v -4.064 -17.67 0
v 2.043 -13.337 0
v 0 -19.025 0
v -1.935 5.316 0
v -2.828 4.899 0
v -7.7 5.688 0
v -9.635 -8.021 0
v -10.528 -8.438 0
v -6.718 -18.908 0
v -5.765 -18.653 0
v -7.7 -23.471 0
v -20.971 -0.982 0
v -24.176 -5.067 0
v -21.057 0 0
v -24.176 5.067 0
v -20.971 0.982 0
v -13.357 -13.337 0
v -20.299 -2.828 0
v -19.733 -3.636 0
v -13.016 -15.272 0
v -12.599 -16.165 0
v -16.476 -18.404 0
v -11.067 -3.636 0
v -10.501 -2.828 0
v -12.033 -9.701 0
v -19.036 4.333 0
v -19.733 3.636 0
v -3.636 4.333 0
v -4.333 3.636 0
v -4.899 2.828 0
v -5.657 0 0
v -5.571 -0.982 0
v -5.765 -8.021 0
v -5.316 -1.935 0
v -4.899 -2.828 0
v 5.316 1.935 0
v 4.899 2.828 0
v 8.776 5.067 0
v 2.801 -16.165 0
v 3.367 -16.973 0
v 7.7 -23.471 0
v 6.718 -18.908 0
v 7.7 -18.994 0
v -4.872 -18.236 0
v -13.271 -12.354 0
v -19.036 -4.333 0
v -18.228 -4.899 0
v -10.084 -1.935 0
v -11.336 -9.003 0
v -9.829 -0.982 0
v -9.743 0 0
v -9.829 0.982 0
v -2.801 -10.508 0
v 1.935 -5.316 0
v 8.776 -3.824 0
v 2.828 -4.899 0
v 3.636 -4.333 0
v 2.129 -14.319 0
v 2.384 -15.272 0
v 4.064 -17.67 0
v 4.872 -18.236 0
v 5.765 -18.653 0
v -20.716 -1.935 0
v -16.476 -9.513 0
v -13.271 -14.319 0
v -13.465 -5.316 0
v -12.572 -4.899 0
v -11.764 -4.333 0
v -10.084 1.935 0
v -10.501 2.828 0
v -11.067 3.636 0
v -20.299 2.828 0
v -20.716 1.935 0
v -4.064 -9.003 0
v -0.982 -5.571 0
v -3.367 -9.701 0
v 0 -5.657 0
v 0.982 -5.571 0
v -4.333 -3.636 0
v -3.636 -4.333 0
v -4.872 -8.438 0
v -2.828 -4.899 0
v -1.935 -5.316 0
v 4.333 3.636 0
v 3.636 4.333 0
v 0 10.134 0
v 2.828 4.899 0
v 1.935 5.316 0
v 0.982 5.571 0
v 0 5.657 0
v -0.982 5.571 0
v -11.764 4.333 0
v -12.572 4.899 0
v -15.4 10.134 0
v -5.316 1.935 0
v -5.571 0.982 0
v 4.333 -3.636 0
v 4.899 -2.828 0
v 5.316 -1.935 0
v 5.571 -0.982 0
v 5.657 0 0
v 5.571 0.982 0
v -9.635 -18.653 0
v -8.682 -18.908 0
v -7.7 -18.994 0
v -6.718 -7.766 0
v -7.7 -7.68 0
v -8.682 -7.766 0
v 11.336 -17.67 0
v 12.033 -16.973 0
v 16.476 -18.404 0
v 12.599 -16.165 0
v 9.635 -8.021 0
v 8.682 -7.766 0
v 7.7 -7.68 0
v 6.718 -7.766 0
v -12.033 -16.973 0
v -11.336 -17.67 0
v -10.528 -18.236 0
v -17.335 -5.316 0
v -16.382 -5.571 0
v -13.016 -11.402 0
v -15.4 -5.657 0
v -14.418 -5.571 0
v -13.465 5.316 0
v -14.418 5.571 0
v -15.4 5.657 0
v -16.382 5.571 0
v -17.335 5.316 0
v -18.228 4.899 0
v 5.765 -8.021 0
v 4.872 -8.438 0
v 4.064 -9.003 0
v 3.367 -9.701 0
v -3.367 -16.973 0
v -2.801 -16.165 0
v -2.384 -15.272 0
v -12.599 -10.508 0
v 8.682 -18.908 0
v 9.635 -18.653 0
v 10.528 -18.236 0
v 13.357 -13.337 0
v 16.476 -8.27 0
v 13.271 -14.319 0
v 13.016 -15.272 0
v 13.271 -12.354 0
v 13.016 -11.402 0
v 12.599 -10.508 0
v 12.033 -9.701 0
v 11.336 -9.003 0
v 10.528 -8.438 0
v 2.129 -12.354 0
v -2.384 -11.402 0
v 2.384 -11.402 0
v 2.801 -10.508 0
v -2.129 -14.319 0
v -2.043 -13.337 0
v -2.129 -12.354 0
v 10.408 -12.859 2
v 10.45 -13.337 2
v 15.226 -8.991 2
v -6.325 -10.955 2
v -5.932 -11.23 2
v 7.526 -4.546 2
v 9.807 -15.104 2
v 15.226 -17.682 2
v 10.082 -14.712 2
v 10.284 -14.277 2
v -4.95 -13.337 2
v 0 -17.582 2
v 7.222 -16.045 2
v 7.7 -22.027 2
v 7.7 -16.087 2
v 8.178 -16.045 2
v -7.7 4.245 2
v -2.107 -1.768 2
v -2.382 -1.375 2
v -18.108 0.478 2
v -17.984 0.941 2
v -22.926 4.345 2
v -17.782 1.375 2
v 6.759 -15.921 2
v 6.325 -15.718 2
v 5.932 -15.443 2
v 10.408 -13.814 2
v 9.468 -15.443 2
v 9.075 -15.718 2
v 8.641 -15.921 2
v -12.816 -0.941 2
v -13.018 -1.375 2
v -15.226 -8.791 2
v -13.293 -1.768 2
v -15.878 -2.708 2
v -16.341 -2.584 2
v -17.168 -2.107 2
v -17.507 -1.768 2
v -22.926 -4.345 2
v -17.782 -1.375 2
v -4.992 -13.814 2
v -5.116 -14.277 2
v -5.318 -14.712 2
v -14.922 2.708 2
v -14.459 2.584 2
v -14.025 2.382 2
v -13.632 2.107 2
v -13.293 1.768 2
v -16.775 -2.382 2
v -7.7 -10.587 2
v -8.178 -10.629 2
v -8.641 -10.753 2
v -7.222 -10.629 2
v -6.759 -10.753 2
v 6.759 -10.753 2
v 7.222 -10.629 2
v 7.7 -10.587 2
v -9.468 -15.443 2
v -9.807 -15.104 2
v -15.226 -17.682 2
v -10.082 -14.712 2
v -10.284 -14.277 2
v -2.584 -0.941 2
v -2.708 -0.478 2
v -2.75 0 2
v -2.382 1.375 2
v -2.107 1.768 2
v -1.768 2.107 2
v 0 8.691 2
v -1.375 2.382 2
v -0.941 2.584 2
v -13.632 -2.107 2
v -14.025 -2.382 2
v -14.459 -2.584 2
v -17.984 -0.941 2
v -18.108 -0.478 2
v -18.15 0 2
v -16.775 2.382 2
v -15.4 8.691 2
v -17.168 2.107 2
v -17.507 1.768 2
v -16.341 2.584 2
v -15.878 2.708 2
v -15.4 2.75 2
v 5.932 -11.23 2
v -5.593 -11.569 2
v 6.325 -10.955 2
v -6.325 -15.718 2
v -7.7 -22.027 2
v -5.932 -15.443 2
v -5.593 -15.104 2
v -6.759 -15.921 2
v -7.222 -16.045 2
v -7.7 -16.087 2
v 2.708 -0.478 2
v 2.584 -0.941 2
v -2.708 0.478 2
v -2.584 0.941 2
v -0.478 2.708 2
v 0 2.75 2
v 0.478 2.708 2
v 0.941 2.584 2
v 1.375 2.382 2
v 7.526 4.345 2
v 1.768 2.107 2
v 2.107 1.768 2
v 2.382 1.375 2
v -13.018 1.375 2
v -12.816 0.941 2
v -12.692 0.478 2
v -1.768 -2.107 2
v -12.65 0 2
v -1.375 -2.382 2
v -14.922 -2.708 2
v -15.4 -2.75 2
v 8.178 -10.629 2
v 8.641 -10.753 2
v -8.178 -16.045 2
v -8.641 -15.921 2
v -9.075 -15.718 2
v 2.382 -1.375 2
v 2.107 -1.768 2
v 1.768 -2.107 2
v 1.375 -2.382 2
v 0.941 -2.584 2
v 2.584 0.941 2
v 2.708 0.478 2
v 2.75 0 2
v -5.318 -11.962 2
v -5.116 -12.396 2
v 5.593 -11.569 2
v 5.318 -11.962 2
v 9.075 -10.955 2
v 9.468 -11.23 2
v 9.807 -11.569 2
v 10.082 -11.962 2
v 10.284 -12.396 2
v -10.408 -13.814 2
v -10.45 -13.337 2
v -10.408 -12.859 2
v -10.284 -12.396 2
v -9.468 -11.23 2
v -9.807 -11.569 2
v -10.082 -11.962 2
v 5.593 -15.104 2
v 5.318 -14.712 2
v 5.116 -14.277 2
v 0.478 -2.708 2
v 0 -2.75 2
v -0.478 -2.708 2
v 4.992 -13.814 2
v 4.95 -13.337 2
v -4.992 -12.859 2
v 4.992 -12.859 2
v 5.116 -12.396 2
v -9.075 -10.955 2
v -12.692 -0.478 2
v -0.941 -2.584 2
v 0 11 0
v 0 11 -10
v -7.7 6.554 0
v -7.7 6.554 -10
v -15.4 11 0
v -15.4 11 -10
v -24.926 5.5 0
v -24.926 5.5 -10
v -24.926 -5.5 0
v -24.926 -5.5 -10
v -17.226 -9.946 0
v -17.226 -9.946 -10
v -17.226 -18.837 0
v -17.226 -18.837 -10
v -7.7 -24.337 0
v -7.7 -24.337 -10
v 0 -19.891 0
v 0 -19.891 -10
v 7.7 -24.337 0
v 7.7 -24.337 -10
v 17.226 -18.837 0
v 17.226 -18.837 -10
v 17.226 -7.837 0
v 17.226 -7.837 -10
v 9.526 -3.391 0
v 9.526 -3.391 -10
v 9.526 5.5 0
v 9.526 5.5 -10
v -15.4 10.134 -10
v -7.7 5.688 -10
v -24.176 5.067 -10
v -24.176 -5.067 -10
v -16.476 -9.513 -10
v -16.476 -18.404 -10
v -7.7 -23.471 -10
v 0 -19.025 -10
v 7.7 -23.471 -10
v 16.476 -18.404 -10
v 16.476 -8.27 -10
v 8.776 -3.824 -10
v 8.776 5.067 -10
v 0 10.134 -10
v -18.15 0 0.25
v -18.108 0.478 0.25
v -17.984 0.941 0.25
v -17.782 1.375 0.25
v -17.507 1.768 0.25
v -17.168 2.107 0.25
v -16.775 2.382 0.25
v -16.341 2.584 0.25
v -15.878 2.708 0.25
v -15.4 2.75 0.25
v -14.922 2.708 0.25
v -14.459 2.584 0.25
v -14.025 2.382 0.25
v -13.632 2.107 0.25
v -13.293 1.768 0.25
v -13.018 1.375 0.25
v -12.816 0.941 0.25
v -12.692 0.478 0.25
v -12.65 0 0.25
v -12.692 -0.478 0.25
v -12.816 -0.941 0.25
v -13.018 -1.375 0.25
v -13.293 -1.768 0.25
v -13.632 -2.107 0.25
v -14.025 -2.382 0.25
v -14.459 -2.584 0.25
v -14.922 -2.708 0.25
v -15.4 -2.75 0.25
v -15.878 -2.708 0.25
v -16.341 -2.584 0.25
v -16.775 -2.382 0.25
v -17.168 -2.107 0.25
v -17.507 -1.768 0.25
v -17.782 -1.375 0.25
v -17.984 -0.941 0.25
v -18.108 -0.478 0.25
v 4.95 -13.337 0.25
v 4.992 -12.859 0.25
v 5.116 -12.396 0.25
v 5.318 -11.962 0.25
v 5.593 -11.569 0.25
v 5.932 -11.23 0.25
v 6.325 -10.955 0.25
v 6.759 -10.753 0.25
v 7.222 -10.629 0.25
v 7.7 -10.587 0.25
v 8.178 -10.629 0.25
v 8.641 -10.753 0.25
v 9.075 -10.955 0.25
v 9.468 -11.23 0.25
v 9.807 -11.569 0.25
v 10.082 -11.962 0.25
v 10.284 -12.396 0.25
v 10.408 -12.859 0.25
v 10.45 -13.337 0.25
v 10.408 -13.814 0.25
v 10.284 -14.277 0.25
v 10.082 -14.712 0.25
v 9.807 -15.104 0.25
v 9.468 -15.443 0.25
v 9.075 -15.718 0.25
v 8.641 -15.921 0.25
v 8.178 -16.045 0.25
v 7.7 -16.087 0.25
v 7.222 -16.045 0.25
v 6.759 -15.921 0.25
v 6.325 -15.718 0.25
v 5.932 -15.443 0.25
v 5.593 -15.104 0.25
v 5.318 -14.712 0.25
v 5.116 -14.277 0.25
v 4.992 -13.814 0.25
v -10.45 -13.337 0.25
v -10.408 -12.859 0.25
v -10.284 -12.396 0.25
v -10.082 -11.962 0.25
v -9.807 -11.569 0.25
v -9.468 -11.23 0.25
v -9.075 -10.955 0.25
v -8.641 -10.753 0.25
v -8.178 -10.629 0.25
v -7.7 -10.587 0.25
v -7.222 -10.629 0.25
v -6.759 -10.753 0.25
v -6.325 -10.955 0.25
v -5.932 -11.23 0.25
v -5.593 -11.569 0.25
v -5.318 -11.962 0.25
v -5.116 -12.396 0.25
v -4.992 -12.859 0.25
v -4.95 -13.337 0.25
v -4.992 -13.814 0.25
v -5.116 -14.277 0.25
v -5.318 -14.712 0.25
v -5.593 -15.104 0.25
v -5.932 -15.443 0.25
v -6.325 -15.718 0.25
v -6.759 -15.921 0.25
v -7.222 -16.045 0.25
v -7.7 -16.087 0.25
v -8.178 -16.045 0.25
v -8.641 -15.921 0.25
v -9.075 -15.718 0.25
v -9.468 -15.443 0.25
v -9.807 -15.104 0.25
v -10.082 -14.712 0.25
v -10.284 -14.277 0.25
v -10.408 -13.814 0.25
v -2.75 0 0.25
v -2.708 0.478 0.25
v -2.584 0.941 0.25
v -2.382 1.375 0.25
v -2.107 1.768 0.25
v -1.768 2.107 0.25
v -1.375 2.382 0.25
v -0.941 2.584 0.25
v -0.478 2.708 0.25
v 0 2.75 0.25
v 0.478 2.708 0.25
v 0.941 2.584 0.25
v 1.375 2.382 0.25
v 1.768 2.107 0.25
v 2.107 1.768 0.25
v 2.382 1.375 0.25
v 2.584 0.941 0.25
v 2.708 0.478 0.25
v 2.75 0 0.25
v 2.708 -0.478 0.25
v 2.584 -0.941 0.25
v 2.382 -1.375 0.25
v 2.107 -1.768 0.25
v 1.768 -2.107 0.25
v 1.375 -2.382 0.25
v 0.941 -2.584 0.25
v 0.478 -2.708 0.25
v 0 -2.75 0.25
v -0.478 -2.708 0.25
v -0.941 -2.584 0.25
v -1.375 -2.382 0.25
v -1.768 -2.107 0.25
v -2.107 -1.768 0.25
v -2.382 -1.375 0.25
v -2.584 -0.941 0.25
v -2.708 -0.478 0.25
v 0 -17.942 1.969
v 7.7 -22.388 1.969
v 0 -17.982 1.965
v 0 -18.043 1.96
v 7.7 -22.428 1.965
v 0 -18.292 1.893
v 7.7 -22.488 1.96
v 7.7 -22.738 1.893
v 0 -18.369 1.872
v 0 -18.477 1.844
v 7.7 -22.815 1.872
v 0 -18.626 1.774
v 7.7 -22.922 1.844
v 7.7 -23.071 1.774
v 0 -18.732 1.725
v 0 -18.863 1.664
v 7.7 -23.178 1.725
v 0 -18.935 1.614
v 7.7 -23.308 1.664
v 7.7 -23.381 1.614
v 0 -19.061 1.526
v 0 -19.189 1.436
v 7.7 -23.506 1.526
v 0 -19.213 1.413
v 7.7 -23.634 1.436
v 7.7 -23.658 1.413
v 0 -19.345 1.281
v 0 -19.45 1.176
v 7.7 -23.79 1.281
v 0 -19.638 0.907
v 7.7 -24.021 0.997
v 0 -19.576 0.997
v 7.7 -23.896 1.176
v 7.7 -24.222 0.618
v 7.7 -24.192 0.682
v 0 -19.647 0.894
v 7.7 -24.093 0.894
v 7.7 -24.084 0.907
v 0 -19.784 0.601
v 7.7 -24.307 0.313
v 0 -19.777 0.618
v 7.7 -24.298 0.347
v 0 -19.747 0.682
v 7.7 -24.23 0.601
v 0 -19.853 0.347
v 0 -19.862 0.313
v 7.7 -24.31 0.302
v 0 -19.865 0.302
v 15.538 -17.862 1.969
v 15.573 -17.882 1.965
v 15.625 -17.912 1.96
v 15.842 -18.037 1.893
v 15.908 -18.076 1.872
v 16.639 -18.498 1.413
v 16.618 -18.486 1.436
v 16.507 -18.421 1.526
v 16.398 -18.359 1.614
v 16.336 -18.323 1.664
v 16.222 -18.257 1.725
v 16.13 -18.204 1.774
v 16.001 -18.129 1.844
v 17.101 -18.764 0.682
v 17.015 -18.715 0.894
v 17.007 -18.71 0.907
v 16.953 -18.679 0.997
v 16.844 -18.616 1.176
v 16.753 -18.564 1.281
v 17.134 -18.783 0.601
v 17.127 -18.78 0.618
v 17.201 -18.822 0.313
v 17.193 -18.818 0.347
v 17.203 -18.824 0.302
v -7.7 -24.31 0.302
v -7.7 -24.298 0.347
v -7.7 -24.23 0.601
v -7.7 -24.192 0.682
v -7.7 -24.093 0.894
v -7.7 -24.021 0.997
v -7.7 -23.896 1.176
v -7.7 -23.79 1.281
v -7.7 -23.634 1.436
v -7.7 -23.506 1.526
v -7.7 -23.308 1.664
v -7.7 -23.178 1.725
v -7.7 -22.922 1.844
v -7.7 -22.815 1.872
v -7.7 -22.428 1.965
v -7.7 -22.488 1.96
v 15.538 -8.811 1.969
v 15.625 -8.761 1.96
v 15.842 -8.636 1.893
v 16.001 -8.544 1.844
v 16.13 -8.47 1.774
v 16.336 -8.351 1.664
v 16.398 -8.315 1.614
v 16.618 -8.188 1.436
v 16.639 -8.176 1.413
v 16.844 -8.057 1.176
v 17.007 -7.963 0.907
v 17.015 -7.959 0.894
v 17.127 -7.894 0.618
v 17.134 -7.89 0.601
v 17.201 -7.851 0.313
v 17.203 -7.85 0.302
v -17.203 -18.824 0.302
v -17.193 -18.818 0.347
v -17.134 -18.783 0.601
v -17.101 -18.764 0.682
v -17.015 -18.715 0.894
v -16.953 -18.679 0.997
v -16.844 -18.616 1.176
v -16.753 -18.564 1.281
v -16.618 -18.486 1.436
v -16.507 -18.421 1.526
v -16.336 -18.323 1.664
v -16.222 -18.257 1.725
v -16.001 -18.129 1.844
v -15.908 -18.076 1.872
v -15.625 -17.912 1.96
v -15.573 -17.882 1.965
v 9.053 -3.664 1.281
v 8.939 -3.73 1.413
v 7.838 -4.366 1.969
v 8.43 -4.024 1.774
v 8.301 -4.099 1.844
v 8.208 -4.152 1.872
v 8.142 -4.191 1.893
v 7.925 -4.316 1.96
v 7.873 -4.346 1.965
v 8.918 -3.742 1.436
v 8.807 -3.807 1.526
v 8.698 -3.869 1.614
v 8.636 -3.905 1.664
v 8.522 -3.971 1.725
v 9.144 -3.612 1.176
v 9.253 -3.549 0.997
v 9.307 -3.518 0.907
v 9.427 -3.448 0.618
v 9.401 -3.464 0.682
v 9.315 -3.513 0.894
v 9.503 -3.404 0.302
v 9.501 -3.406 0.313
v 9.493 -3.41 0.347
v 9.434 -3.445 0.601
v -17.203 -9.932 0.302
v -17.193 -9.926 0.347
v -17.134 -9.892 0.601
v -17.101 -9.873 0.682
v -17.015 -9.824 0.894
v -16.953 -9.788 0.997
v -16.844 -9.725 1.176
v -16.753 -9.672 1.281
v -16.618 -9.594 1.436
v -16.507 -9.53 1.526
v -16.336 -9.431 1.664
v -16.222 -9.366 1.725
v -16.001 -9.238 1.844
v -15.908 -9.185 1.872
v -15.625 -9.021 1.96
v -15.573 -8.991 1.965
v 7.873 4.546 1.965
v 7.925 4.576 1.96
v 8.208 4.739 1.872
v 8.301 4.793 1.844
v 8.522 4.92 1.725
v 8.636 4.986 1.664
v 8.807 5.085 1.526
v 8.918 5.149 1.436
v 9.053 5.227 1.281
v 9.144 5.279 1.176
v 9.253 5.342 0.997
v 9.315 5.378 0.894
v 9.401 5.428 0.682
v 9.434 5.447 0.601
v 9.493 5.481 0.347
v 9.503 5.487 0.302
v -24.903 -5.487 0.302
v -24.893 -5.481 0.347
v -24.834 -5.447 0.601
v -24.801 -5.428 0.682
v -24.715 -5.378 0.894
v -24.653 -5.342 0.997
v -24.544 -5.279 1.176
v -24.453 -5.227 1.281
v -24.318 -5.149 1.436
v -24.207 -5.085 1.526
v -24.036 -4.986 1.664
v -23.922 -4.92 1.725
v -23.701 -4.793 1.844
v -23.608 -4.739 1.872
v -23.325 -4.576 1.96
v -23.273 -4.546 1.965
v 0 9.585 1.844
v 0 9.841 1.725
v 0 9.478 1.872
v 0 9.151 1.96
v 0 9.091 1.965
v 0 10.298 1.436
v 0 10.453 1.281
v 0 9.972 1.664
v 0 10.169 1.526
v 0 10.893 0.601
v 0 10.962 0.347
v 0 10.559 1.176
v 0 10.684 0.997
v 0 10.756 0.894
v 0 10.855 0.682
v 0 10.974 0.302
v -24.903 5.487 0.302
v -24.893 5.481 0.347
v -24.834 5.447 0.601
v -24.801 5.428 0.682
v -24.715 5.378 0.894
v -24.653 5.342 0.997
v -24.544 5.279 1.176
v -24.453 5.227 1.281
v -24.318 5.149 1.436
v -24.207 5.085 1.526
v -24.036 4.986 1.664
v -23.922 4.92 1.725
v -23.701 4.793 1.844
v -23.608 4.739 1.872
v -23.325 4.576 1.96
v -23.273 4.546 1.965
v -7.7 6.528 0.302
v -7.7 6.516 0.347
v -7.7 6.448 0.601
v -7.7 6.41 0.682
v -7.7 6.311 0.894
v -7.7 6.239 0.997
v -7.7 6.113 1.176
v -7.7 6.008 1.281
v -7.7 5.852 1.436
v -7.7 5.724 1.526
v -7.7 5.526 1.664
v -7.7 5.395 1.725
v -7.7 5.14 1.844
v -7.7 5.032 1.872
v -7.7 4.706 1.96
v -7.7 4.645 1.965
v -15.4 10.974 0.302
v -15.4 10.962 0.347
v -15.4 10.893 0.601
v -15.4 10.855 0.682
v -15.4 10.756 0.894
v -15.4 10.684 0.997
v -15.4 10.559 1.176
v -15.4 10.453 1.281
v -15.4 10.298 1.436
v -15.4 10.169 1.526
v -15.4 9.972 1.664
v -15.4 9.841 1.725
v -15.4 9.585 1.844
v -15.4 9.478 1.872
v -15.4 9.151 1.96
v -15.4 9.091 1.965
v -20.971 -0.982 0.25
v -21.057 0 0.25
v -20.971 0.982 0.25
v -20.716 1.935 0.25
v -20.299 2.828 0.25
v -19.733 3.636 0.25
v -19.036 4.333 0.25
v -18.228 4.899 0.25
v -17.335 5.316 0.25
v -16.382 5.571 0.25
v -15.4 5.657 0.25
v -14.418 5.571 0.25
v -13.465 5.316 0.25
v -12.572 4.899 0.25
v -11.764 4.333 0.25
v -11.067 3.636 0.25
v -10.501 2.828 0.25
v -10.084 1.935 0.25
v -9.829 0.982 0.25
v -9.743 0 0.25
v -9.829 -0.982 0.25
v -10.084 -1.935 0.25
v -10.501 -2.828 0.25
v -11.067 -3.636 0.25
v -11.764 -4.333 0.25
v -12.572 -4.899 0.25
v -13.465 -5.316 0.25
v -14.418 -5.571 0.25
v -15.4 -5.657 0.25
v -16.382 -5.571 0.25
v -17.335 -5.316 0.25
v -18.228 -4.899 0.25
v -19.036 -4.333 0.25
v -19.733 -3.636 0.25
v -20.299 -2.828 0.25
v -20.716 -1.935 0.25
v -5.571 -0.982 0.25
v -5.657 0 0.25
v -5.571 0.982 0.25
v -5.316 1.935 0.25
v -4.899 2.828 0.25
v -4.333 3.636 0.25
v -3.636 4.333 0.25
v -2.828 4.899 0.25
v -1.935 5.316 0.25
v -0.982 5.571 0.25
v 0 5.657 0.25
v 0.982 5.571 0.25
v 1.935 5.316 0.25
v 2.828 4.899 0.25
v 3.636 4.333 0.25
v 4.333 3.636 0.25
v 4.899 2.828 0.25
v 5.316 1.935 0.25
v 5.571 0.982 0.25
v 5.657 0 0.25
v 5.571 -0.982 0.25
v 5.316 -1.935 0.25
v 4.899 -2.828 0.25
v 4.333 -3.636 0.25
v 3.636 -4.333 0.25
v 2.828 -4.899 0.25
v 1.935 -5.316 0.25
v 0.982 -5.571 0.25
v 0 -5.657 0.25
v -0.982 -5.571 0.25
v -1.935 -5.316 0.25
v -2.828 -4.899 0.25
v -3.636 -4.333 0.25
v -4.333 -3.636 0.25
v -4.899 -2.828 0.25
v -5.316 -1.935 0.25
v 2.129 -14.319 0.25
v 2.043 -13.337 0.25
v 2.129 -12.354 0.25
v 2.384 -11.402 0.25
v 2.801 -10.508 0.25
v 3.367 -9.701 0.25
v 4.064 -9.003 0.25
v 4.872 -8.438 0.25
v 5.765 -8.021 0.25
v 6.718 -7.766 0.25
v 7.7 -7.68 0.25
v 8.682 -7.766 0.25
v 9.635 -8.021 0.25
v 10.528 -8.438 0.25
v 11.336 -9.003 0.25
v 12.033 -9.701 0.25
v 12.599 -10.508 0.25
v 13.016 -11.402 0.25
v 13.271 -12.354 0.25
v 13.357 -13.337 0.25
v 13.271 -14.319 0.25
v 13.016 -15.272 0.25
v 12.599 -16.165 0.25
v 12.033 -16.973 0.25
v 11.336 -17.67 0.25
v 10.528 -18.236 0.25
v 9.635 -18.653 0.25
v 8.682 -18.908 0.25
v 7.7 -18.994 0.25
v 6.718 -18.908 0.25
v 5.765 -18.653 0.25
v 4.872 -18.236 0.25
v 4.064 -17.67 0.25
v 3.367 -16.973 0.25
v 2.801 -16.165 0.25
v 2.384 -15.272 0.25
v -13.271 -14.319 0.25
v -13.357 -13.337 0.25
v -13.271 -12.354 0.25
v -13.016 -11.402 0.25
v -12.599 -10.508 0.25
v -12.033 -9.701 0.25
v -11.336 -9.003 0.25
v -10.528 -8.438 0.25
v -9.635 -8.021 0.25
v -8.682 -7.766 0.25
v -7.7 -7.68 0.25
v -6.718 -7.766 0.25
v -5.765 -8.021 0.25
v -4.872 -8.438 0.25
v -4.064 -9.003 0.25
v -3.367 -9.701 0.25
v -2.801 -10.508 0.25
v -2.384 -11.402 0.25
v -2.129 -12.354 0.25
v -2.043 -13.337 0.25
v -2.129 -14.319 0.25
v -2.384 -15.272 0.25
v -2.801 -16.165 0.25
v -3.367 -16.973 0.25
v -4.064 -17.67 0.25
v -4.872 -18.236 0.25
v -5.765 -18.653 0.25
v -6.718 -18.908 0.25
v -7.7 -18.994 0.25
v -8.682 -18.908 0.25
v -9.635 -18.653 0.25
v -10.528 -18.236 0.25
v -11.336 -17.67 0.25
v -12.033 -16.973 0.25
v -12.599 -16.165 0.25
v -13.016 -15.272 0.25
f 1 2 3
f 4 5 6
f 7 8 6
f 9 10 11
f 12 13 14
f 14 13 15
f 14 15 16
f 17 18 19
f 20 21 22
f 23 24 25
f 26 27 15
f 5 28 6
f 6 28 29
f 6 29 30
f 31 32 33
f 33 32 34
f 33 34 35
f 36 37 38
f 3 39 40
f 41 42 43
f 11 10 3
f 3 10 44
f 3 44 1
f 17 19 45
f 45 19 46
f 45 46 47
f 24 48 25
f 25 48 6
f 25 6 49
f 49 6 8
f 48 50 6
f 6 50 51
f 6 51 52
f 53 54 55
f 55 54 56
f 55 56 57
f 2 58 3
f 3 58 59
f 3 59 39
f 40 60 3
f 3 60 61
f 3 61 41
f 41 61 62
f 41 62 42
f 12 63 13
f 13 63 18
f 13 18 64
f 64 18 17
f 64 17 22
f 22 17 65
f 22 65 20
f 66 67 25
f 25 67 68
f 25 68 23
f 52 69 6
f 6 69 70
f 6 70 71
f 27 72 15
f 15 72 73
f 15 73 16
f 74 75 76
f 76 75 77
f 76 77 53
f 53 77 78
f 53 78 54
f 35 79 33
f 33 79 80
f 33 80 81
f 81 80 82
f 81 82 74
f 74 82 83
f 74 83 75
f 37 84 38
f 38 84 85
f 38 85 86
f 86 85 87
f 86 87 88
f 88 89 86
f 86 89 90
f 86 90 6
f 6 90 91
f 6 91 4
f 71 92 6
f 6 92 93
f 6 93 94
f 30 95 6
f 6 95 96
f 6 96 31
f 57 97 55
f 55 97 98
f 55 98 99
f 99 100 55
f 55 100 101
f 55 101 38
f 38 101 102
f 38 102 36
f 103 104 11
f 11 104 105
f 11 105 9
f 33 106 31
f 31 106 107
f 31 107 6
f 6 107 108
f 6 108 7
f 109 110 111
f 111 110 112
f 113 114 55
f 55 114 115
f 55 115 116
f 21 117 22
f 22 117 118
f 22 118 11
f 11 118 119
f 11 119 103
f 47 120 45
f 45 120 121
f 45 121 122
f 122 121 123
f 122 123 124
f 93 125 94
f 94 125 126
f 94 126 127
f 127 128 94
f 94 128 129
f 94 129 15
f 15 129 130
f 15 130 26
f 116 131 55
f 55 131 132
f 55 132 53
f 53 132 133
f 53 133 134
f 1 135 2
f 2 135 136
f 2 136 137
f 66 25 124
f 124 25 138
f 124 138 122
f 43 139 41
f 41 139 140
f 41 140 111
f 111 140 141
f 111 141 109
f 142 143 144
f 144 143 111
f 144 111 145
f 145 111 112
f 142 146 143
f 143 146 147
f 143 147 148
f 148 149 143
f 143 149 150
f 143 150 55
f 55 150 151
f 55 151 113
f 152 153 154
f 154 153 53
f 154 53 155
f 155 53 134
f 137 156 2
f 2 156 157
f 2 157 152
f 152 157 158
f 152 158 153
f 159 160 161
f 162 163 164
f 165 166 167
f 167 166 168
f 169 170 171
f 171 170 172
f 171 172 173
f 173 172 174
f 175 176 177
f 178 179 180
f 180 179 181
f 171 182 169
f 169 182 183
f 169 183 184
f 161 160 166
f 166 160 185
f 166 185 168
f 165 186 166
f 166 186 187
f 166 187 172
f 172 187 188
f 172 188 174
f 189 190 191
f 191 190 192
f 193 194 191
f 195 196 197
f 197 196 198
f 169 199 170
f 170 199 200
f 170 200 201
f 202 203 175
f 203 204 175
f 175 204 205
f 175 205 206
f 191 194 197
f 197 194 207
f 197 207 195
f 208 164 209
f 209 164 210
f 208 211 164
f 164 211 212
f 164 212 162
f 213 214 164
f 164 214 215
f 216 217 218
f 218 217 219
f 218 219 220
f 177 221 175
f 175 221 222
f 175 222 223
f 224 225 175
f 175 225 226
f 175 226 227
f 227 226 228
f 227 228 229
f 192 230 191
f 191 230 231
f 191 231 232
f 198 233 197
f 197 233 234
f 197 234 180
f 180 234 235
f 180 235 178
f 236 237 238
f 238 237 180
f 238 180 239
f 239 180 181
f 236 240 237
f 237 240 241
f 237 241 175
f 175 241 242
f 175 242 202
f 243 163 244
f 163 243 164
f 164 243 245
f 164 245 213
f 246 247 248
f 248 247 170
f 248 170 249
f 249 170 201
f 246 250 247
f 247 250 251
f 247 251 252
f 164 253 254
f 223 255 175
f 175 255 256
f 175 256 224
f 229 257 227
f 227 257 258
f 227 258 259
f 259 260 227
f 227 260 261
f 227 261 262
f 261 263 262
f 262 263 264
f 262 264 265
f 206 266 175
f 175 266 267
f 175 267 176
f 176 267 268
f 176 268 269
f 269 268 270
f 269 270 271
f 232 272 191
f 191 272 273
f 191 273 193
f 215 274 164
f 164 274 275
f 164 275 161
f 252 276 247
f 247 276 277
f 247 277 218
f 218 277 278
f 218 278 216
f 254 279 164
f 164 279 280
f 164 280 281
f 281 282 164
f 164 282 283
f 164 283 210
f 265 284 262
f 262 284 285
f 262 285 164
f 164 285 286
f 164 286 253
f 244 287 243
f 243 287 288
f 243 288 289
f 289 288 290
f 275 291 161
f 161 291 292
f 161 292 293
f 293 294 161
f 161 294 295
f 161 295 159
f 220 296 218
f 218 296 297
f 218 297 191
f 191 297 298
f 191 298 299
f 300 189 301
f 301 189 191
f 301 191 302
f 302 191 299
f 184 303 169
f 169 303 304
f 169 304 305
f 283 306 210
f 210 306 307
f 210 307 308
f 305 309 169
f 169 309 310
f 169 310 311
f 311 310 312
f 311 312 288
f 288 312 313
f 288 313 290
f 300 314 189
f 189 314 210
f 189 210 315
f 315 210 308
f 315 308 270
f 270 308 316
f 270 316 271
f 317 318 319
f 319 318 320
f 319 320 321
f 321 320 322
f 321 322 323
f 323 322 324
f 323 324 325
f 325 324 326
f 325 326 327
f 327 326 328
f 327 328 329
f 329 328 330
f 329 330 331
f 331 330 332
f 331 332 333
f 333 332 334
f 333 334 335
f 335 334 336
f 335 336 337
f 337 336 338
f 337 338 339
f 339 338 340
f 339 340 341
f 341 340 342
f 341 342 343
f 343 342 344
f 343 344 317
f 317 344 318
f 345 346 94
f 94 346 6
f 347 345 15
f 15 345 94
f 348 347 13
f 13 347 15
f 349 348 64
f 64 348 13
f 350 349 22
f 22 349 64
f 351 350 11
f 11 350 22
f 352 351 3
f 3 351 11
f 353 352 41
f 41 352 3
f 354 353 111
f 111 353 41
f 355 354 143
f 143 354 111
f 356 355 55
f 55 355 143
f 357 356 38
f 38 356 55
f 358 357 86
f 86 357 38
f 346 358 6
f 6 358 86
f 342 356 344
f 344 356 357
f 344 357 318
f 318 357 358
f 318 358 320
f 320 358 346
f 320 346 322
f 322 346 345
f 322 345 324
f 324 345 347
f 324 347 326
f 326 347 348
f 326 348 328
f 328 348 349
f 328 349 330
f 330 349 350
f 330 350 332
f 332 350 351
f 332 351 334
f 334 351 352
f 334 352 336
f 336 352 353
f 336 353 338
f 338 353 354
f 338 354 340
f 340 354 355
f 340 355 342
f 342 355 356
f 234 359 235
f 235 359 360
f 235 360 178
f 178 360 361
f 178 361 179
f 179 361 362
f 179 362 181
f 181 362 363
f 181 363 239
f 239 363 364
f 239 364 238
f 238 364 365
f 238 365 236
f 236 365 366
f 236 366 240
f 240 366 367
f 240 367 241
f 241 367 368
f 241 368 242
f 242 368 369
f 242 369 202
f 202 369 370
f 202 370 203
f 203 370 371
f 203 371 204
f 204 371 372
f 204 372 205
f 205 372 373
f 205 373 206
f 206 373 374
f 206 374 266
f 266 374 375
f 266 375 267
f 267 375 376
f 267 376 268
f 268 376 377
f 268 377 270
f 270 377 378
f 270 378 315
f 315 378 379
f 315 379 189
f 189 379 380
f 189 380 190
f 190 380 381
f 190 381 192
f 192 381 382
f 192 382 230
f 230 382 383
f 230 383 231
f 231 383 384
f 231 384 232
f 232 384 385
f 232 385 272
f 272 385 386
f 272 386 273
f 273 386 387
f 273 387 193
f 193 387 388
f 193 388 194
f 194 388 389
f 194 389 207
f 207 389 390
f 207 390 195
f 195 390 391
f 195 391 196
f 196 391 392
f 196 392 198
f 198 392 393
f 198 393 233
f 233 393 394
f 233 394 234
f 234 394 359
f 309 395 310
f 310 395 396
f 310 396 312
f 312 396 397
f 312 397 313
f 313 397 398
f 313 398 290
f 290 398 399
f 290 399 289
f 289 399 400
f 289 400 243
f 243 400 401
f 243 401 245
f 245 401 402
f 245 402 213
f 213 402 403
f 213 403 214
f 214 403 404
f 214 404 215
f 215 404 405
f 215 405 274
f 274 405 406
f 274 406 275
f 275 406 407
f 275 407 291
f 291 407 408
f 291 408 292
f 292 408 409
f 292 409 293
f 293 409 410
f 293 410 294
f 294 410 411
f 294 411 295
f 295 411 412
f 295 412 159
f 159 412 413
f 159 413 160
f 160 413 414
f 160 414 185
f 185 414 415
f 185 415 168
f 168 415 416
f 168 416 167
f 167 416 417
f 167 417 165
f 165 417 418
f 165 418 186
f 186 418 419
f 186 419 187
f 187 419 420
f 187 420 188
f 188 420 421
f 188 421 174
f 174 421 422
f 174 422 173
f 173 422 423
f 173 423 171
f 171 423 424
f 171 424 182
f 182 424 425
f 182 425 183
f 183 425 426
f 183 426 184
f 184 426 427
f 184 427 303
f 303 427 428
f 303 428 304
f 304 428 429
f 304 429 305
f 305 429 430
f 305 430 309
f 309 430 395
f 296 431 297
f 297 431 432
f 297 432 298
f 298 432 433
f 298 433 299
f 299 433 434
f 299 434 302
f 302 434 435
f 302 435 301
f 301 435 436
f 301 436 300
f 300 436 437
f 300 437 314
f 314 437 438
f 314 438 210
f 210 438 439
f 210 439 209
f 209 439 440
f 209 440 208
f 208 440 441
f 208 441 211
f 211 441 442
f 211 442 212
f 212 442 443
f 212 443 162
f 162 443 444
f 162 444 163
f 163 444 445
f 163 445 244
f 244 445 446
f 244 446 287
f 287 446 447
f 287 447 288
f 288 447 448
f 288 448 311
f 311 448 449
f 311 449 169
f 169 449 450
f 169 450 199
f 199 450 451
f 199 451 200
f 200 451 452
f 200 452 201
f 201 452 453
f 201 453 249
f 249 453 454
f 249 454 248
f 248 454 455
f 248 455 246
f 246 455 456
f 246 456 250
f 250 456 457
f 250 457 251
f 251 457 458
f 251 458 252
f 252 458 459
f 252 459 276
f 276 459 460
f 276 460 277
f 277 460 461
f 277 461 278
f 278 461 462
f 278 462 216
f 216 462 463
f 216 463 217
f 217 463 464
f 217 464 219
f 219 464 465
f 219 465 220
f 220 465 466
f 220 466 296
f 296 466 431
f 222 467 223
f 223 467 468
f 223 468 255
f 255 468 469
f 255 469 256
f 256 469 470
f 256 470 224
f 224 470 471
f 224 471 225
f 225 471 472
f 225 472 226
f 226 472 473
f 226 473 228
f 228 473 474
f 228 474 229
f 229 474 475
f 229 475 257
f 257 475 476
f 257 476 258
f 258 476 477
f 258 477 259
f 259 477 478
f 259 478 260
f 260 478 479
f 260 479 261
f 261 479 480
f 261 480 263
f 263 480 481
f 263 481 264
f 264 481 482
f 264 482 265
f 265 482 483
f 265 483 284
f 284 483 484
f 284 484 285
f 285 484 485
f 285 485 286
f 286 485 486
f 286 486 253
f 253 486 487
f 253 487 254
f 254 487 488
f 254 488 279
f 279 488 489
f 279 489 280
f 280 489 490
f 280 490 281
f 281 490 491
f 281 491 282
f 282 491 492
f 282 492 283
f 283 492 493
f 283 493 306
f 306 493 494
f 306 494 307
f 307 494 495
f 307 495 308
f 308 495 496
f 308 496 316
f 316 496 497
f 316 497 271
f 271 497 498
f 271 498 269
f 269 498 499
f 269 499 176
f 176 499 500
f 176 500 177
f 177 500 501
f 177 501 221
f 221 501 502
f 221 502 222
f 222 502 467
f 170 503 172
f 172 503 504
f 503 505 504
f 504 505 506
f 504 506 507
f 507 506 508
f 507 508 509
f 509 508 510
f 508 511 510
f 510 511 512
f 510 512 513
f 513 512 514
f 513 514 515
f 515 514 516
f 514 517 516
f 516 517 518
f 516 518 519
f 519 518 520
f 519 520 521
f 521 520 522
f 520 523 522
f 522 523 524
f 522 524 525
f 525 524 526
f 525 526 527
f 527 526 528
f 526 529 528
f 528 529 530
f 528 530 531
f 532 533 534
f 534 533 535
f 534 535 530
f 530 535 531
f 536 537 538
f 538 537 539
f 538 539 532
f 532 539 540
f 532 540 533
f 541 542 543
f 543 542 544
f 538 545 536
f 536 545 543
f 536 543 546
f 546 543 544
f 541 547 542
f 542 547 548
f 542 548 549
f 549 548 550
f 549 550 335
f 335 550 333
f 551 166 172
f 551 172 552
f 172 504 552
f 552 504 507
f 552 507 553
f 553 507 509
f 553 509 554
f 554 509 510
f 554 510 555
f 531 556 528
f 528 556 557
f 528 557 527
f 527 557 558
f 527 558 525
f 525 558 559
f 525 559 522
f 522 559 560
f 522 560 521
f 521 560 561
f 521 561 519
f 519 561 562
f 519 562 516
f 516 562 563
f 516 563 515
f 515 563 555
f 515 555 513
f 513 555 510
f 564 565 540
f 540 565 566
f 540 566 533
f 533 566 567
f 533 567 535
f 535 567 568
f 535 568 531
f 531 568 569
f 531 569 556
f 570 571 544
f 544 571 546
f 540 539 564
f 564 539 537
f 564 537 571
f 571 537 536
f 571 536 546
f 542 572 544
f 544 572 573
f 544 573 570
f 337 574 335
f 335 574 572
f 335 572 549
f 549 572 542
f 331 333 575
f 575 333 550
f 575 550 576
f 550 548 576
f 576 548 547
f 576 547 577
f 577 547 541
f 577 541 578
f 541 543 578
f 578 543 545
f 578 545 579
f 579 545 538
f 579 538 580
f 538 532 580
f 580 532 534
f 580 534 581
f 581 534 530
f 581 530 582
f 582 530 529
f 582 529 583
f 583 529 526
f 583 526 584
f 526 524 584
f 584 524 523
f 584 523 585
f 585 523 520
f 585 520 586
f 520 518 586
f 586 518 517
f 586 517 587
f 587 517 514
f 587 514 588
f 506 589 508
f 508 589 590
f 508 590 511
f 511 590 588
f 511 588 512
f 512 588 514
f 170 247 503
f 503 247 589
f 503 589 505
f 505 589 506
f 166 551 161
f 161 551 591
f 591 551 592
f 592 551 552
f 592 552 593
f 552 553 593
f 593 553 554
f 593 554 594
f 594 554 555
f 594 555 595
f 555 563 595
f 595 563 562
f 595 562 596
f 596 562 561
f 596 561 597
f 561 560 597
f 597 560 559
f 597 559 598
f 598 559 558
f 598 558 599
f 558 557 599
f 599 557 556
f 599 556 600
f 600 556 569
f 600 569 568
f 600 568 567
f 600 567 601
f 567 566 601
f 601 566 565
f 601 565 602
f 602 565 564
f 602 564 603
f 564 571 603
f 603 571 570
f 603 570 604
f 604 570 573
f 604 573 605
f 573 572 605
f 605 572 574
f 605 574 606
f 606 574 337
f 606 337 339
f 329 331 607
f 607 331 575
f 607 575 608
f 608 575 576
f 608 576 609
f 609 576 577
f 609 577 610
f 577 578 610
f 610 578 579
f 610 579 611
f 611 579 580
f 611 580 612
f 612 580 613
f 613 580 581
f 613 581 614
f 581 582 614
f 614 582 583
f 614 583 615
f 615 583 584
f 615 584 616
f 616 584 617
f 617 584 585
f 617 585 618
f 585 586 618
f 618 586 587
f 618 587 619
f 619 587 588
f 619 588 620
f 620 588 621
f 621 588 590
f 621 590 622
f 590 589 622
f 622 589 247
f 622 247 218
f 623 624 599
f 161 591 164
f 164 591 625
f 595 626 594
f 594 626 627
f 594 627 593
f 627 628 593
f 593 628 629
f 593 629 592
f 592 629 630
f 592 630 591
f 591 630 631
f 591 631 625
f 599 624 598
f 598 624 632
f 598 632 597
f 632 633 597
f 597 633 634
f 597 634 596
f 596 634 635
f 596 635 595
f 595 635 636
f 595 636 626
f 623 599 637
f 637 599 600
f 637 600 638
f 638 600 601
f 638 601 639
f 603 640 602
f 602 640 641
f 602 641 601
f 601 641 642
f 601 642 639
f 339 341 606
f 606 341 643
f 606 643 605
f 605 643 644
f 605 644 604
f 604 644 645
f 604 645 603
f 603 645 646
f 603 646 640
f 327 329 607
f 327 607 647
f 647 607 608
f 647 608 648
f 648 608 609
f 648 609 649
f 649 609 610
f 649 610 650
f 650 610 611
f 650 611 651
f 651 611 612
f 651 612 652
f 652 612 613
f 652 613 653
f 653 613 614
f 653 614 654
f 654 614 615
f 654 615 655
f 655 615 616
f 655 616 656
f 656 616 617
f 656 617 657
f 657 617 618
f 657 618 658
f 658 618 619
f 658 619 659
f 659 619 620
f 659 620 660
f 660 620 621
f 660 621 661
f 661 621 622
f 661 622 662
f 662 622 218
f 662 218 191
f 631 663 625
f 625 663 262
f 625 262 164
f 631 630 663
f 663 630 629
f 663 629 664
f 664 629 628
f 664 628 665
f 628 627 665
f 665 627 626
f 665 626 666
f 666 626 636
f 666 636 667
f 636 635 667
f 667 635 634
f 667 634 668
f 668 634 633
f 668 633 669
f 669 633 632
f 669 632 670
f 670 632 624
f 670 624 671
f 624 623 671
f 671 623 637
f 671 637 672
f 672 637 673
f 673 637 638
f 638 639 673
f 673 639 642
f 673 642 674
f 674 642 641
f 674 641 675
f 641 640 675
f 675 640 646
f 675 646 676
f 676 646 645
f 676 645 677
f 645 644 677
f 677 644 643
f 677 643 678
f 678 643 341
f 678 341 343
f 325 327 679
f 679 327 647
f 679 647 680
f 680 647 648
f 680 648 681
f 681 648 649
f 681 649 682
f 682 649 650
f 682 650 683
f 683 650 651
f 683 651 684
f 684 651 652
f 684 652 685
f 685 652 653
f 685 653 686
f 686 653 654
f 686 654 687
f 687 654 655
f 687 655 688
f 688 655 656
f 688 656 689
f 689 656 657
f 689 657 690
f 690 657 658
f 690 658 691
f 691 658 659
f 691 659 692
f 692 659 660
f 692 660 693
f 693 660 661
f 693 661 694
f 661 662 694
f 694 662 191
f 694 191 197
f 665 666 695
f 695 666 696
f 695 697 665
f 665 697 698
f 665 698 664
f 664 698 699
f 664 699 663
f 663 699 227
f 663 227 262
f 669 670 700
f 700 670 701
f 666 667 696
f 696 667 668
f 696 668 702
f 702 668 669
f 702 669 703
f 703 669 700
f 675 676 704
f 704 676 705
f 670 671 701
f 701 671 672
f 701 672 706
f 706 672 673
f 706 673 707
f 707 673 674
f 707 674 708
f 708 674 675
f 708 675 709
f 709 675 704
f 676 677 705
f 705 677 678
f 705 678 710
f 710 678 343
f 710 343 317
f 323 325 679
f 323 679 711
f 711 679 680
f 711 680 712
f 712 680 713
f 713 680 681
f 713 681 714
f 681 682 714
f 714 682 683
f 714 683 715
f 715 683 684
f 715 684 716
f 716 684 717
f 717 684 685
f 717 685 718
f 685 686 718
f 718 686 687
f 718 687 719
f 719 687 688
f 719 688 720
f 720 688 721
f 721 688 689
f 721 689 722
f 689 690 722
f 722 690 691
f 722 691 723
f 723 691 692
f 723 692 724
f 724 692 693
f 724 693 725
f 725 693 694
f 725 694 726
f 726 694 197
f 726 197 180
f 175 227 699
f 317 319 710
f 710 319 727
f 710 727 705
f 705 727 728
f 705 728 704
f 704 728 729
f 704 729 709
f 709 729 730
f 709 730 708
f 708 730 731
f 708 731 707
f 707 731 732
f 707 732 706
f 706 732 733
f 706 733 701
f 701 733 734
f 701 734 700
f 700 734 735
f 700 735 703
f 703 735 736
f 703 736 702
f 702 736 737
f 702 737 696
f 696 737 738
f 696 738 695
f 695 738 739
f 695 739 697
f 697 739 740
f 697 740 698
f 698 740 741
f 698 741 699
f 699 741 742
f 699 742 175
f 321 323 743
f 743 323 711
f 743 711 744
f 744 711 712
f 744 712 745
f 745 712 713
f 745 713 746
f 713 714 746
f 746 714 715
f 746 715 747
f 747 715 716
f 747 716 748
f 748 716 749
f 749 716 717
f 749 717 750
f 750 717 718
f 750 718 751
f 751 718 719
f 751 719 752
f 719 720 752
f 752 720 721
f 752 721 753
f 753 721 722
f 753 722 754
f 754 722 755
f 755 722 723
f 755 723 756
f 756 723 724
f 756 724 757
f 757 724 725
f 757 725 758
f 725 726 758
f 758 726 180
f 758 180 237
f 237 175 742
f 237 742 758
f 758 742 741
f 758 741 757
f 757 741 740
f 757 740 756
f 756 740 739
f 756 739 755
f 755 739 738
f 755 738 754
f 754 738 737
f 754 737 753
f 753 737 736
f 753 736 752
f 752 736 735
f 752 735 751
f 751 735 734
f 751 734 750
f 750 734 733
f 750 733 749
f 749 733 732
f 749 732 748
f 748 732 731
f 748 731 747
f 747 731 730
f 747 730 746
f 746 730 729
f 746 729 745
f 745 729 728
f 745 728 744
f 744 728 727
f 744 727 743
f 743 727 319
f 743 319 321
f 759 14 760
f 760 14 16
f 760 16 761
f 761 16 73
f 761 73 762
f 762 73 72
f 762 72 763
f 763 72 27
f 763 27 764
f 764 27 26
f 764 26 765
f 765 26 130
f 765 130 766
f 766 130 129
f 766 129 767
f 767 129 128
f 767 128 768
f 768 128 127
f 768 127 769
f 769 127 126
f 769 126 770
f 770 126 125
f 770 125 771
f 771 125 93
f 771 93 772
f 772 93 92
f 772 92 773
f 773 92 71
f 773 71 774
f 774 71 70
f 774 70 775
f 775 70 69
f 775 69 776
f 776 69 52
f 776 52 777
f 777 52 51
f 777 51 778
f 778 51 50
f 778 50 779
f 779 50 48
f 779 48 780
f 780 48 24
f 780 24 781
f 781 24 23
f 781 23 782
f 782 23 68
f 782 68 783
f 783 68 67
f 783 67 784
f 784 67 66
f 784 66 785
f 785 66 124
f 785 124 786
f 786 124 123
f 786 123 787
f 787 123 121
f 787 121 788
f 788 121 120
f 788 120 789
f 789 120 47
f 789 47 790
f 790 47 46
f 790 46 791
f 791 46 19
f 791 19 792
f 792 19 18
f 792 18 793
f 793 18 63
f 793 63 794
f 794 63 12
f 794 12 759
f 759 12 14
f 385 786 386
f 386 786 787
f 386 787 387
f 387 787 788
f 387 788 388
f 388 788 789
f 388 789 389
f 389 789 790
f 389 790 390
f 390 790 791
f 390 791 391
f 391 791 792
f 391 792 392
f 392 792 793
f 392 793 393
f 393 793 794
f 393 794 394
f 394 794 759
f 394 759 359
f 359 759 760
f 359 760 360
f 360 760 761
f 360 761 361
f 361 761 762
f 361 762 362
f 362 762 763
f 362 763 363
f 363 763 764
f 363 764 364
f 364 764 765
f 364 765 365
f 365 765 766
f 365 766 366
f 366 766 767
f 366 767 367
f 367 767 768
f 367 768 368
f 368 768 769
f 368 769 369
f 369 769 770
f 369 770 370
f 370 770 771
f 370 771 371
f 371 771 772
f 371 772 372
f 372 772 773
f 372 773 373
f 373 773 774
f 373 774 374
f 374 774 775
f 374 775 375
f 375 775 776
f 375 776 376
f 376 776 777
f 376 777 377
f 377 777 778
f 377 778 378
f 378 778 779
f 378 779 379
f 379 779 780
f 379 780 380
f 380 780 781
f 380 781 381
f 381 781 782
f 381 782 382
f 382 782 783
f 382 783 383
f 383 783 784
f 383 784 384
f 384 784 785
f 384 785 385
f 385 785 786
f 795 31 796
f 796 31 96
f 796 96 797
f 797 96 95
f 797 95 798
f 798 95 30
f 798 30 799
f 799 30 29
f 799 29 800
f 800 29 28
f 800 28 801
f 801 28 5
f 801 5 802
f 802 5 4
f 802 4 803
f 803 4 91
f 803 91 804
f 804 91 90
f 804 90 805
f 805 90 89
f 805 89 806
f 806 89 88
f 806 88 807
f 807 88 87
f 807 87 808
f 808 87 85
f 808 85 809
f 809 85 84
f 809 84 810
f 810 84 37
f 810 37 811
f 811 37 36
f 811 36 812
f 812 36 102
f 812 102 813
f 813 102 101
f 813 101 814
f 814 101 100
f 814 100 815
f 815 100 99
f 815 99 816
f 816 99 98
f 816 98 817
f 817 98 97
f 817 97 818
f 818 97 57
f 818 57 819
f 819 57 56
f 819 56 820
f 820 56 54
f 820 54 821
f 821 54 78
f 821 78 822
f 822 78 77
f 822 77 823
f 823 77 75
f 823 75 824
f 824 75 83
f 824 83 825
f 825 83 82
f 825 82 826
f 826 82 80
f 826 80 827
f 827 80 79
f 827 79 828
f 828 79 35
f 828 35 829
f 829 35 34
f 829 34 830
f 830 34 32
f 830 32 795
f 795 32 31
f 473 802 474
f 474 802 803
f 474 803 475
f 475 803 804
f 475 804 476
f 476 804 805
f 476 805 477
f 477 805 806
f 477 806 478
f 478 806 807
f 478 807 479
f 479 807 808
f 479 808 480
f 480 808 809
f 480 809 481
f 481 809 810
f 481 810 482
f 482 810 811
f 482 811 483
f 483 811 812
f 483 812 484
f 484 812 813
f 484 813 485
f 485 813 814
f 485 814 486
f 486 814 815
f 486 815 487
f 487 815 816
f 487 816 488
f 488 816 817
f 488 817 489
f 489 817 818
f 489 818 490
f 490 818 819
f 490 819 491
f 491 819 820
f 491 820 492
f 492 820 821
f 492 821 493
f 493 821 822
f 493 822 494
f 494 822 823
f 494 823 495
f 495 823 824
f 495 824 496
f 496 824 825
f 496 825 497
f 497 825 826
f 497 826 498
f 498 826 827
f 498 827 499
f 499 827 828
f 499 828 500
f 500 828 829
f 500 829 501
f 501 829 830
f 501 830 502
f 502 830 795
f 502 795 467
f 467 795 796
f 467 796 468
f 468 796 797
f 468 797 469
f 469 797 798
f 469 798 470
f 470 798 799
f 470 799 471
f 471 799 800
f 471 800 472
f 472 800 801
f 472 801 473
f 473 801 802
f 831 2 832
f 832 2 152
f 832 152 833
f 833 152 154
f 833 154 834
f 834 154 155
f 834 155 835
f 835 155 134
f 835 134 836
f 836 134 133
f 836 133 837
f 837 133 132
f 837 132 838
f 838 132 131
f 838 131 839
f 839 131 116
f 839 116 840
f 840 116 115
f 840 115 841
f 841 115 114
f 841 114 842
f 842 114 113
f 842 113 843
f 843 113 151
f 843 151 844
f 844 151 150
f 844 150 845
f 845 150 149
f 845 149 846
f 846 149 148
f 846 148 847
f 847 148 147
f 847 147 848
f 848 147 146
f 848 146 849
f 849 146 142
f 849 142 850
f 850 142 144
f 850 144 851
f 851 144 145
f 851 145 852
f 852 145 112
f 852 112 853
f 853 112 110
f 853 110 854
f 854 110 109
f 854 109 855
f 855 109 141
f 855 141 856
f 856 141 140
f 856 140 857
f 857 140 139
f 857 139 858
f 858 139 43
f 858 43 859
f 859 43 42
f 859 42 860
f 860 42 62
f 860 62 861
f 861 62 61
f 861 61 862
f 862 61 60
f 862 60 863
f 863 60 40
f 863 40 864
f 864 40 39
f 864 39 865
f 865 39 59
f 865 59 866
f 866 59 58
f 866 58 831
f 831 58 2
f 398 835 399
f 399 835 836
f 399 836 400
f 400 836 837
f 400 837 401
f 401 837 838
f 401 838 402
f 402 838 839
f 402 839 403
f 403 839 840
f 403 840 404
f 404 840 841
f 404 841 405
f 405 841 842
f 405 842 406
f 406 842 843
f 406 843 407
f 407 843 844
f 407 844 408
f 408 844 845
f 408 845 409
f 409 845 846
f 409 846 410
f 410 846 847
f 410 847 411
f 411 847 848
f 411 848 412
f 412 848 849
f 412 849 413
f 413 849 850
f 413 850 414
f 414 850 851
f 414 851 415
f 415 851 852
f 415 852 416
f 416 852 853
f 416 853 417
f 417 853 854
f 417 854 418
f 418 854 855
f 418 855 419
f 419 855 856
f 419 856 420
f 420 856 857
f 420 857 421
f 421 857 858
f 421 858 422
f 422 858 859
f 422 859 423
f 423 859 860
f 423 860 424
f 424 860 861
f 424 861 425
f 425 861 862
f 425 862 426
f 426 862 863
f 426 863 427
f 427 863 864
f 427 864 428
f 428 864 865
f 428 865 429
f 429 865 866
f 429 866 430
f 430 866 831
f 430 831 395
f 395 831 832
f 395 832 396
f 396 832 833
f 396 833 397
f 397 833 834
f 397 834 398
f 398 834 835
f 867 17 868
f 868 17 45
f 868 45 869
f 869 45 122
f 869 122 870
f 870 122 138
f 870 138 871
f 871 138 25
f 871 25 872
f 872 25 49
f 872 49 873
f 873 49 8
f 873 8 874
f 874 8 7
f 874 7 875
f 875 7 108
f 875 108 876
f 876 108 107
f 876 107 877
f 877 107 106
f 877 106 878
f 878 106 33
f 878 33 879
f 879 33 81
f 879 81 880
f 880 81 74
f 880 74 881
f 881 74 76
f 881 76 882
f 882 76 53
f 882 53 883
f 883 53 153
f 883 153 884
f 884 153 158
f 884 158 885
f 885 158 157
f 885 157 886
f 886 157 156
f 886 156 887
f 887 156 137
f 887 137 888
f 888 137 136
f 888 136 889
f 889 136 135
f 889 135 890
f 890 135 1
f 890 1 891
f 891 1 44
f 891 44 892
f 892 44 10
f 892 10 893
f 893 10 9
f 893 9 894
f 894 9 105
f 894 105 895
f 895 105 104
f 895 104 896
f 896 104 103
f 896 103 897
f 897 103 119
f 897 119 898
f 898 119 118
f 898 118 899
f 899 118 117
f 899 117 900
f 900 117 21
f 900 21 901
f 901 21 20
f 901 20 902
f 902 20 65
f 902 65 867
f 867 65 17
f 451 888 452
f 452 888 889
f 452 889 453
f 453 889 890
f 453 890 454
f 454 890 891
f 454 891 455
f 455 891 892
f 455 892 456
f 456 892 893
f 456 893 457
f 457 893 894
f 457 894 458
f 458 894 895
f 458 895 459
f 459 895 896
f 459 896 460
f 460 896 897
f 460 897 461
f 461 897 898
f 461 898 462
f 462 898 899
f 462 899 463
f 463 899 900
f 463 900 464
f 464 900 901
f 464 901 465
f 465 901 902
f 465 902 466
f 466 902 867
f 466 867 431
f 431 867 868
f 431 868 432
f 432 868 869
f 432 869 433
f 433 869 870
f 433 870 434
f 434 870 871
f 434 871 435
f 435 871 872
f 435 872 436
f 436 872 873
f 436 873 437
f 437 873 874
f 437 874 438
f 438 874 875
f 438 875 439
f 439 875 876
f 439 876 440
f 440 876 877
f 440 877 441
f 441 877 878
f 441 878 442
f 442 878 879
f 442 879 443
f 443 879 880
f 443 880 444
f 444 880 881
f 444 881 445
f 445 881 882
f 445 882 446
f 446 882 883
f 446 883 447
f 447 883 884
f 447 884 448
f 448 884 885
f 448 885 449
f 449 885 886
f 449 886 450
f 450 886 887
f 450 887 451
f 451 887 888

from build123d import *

# Parameters (mm, degrees)
BOSS_EXTRUDE1_DEPTH = 2
BOSS_EXTRUDE2_DEPTH = 10
SKETCH1_4_R         = 2.75
CUT_EXTRUDE1_DEPTH  = 2
FILLET1_R           = 2
SKETCH1_5_R         = 5.656929669
CUT_EXTRUDE5_DEPTH  = 0.25


with BuildPart() as part:
    # Sketch1 → Boss-Extrude1 (new body)
    with BuildSketch(Plane.XY):
        Polygon((-24.926279442, 5.5), (-24.926279442, -5.5), (-17.226279442, -9.945597073), (-17.226279442, -18.836791218), (-7.7, -24.336791218), (0, -19.891194146), (7.7, -24.336791218), (17.226279442, -18.836791218), (17.226279442, -7.836791218), (9.526279442, -3.391194146), (9.526279442, 5.5), (0, 11), (-7.7, 6.554402927), (-15.4, 11), align=None)
    extrude(amount=BOSS_EXTRUDE1_DEPTH)

    # Sketch1<3> → Boss-Extrude2 (add)
    with BuildSketch(Plane.XY):
        Polygon((-15.4, 11), (-24.926279442, 5.5), (-24.926279442, -5.5), (-17.226279442, -9.945597073), (-17.226279442, -18.836791218), (-7.7, -24.336791218), (0, -19.891194146), (7.7, -24.336791218), (17.226279442, -18.836791218), (17.226279442, -7.836791218), (9.526279442, -3.391194146), (9.526279442, 5.5), (0, 11), (-7.7, 6.554402927), align=None)
        Polygon((-24.176279442, 5.066987298), (-15.4, 10.133974596), (-7.7, 5.688377523), (0, 10.133974596), (8.776279442, 5.066987298), (8.776279442, -3.824206847), (16.476279442, -8.26980392), (16.476279442, -18.403778516), (7.7, -23.470765814), (0, -19.025168742), (-7.7, -23.470765814), (-16.476279442, -18.403778516), (-16.476279442, -9.512584371), (-24.176279442, -5.066987298), align=None, mode=Mode.SUBTRACT)
    extrude(amount=-BOSS_EXTRUDE2_DEPTH)

    # Sketch1<4> → Cut-Extrude1 (cut)
    with BuildSketch(Plane.XY):
        with Locations((-15.4, 0)):
            Circle(SKETCH1_4_R)
        Circle(SKETCH1_4_R)
        with Locations((-7.7, -13.336791218)):
            Circle(SKETCH1_4_R)
        with Locations((7.7, -13.336791218)):
            Circle(SKETCH1_4_R)
    extrude(amount=CUT_EXTRUDE1_DEPTH, mode=Mode.SUBTRACT)

    # Fillet1
    fillet1_edges = [part.edges().sort_by_distance(p)[0] for p in [
        (4.763139721, 8.25, 2),
        (9.526279442, 1.054402927, 2),
        (13.376279442, -5.613992682, 2),
        (17.226279442, -13.336791218, 2),
        (12.463139721, -21.586791218, 2),
        (3.85, -22.113992682, 2),
        (-3.85, -22.113992682, 2),
        (-12.463139721, -21.586791218, 2),
        (-17.226279442, -14.391194146, 2),
        (-21.076279442, -7.722798536, 2),
        (-24.926279442, 0, 2),
        (-20.163139721, 8.25, 2),
        (-11.55, 8.777201464, 2),
        (-3.85, 8.777201464, 2),
    ]]
    fillet(fillet1_edges, radius=FILLET1_R)

    # Sketch1<5> → Cut-Extrude5 (cut)
    with BuildSketch(Plane.XY):
        with Locations((-15.4, 0)):
            Circle(SKETCH1_5_R)
        Circle(SKETCH1_5_R)
        with Locations((7.7, -13.336791218)):
            Circle(SKETCH1_5_R)
        with Locations((-7.7, -13.336791218)):
            Circle(SKETCH1_5_R)
    extrude(amount=CUT_EXTRUDE5_DEPTH, mode=Mode.SUBTRACT)


solid = part.part
